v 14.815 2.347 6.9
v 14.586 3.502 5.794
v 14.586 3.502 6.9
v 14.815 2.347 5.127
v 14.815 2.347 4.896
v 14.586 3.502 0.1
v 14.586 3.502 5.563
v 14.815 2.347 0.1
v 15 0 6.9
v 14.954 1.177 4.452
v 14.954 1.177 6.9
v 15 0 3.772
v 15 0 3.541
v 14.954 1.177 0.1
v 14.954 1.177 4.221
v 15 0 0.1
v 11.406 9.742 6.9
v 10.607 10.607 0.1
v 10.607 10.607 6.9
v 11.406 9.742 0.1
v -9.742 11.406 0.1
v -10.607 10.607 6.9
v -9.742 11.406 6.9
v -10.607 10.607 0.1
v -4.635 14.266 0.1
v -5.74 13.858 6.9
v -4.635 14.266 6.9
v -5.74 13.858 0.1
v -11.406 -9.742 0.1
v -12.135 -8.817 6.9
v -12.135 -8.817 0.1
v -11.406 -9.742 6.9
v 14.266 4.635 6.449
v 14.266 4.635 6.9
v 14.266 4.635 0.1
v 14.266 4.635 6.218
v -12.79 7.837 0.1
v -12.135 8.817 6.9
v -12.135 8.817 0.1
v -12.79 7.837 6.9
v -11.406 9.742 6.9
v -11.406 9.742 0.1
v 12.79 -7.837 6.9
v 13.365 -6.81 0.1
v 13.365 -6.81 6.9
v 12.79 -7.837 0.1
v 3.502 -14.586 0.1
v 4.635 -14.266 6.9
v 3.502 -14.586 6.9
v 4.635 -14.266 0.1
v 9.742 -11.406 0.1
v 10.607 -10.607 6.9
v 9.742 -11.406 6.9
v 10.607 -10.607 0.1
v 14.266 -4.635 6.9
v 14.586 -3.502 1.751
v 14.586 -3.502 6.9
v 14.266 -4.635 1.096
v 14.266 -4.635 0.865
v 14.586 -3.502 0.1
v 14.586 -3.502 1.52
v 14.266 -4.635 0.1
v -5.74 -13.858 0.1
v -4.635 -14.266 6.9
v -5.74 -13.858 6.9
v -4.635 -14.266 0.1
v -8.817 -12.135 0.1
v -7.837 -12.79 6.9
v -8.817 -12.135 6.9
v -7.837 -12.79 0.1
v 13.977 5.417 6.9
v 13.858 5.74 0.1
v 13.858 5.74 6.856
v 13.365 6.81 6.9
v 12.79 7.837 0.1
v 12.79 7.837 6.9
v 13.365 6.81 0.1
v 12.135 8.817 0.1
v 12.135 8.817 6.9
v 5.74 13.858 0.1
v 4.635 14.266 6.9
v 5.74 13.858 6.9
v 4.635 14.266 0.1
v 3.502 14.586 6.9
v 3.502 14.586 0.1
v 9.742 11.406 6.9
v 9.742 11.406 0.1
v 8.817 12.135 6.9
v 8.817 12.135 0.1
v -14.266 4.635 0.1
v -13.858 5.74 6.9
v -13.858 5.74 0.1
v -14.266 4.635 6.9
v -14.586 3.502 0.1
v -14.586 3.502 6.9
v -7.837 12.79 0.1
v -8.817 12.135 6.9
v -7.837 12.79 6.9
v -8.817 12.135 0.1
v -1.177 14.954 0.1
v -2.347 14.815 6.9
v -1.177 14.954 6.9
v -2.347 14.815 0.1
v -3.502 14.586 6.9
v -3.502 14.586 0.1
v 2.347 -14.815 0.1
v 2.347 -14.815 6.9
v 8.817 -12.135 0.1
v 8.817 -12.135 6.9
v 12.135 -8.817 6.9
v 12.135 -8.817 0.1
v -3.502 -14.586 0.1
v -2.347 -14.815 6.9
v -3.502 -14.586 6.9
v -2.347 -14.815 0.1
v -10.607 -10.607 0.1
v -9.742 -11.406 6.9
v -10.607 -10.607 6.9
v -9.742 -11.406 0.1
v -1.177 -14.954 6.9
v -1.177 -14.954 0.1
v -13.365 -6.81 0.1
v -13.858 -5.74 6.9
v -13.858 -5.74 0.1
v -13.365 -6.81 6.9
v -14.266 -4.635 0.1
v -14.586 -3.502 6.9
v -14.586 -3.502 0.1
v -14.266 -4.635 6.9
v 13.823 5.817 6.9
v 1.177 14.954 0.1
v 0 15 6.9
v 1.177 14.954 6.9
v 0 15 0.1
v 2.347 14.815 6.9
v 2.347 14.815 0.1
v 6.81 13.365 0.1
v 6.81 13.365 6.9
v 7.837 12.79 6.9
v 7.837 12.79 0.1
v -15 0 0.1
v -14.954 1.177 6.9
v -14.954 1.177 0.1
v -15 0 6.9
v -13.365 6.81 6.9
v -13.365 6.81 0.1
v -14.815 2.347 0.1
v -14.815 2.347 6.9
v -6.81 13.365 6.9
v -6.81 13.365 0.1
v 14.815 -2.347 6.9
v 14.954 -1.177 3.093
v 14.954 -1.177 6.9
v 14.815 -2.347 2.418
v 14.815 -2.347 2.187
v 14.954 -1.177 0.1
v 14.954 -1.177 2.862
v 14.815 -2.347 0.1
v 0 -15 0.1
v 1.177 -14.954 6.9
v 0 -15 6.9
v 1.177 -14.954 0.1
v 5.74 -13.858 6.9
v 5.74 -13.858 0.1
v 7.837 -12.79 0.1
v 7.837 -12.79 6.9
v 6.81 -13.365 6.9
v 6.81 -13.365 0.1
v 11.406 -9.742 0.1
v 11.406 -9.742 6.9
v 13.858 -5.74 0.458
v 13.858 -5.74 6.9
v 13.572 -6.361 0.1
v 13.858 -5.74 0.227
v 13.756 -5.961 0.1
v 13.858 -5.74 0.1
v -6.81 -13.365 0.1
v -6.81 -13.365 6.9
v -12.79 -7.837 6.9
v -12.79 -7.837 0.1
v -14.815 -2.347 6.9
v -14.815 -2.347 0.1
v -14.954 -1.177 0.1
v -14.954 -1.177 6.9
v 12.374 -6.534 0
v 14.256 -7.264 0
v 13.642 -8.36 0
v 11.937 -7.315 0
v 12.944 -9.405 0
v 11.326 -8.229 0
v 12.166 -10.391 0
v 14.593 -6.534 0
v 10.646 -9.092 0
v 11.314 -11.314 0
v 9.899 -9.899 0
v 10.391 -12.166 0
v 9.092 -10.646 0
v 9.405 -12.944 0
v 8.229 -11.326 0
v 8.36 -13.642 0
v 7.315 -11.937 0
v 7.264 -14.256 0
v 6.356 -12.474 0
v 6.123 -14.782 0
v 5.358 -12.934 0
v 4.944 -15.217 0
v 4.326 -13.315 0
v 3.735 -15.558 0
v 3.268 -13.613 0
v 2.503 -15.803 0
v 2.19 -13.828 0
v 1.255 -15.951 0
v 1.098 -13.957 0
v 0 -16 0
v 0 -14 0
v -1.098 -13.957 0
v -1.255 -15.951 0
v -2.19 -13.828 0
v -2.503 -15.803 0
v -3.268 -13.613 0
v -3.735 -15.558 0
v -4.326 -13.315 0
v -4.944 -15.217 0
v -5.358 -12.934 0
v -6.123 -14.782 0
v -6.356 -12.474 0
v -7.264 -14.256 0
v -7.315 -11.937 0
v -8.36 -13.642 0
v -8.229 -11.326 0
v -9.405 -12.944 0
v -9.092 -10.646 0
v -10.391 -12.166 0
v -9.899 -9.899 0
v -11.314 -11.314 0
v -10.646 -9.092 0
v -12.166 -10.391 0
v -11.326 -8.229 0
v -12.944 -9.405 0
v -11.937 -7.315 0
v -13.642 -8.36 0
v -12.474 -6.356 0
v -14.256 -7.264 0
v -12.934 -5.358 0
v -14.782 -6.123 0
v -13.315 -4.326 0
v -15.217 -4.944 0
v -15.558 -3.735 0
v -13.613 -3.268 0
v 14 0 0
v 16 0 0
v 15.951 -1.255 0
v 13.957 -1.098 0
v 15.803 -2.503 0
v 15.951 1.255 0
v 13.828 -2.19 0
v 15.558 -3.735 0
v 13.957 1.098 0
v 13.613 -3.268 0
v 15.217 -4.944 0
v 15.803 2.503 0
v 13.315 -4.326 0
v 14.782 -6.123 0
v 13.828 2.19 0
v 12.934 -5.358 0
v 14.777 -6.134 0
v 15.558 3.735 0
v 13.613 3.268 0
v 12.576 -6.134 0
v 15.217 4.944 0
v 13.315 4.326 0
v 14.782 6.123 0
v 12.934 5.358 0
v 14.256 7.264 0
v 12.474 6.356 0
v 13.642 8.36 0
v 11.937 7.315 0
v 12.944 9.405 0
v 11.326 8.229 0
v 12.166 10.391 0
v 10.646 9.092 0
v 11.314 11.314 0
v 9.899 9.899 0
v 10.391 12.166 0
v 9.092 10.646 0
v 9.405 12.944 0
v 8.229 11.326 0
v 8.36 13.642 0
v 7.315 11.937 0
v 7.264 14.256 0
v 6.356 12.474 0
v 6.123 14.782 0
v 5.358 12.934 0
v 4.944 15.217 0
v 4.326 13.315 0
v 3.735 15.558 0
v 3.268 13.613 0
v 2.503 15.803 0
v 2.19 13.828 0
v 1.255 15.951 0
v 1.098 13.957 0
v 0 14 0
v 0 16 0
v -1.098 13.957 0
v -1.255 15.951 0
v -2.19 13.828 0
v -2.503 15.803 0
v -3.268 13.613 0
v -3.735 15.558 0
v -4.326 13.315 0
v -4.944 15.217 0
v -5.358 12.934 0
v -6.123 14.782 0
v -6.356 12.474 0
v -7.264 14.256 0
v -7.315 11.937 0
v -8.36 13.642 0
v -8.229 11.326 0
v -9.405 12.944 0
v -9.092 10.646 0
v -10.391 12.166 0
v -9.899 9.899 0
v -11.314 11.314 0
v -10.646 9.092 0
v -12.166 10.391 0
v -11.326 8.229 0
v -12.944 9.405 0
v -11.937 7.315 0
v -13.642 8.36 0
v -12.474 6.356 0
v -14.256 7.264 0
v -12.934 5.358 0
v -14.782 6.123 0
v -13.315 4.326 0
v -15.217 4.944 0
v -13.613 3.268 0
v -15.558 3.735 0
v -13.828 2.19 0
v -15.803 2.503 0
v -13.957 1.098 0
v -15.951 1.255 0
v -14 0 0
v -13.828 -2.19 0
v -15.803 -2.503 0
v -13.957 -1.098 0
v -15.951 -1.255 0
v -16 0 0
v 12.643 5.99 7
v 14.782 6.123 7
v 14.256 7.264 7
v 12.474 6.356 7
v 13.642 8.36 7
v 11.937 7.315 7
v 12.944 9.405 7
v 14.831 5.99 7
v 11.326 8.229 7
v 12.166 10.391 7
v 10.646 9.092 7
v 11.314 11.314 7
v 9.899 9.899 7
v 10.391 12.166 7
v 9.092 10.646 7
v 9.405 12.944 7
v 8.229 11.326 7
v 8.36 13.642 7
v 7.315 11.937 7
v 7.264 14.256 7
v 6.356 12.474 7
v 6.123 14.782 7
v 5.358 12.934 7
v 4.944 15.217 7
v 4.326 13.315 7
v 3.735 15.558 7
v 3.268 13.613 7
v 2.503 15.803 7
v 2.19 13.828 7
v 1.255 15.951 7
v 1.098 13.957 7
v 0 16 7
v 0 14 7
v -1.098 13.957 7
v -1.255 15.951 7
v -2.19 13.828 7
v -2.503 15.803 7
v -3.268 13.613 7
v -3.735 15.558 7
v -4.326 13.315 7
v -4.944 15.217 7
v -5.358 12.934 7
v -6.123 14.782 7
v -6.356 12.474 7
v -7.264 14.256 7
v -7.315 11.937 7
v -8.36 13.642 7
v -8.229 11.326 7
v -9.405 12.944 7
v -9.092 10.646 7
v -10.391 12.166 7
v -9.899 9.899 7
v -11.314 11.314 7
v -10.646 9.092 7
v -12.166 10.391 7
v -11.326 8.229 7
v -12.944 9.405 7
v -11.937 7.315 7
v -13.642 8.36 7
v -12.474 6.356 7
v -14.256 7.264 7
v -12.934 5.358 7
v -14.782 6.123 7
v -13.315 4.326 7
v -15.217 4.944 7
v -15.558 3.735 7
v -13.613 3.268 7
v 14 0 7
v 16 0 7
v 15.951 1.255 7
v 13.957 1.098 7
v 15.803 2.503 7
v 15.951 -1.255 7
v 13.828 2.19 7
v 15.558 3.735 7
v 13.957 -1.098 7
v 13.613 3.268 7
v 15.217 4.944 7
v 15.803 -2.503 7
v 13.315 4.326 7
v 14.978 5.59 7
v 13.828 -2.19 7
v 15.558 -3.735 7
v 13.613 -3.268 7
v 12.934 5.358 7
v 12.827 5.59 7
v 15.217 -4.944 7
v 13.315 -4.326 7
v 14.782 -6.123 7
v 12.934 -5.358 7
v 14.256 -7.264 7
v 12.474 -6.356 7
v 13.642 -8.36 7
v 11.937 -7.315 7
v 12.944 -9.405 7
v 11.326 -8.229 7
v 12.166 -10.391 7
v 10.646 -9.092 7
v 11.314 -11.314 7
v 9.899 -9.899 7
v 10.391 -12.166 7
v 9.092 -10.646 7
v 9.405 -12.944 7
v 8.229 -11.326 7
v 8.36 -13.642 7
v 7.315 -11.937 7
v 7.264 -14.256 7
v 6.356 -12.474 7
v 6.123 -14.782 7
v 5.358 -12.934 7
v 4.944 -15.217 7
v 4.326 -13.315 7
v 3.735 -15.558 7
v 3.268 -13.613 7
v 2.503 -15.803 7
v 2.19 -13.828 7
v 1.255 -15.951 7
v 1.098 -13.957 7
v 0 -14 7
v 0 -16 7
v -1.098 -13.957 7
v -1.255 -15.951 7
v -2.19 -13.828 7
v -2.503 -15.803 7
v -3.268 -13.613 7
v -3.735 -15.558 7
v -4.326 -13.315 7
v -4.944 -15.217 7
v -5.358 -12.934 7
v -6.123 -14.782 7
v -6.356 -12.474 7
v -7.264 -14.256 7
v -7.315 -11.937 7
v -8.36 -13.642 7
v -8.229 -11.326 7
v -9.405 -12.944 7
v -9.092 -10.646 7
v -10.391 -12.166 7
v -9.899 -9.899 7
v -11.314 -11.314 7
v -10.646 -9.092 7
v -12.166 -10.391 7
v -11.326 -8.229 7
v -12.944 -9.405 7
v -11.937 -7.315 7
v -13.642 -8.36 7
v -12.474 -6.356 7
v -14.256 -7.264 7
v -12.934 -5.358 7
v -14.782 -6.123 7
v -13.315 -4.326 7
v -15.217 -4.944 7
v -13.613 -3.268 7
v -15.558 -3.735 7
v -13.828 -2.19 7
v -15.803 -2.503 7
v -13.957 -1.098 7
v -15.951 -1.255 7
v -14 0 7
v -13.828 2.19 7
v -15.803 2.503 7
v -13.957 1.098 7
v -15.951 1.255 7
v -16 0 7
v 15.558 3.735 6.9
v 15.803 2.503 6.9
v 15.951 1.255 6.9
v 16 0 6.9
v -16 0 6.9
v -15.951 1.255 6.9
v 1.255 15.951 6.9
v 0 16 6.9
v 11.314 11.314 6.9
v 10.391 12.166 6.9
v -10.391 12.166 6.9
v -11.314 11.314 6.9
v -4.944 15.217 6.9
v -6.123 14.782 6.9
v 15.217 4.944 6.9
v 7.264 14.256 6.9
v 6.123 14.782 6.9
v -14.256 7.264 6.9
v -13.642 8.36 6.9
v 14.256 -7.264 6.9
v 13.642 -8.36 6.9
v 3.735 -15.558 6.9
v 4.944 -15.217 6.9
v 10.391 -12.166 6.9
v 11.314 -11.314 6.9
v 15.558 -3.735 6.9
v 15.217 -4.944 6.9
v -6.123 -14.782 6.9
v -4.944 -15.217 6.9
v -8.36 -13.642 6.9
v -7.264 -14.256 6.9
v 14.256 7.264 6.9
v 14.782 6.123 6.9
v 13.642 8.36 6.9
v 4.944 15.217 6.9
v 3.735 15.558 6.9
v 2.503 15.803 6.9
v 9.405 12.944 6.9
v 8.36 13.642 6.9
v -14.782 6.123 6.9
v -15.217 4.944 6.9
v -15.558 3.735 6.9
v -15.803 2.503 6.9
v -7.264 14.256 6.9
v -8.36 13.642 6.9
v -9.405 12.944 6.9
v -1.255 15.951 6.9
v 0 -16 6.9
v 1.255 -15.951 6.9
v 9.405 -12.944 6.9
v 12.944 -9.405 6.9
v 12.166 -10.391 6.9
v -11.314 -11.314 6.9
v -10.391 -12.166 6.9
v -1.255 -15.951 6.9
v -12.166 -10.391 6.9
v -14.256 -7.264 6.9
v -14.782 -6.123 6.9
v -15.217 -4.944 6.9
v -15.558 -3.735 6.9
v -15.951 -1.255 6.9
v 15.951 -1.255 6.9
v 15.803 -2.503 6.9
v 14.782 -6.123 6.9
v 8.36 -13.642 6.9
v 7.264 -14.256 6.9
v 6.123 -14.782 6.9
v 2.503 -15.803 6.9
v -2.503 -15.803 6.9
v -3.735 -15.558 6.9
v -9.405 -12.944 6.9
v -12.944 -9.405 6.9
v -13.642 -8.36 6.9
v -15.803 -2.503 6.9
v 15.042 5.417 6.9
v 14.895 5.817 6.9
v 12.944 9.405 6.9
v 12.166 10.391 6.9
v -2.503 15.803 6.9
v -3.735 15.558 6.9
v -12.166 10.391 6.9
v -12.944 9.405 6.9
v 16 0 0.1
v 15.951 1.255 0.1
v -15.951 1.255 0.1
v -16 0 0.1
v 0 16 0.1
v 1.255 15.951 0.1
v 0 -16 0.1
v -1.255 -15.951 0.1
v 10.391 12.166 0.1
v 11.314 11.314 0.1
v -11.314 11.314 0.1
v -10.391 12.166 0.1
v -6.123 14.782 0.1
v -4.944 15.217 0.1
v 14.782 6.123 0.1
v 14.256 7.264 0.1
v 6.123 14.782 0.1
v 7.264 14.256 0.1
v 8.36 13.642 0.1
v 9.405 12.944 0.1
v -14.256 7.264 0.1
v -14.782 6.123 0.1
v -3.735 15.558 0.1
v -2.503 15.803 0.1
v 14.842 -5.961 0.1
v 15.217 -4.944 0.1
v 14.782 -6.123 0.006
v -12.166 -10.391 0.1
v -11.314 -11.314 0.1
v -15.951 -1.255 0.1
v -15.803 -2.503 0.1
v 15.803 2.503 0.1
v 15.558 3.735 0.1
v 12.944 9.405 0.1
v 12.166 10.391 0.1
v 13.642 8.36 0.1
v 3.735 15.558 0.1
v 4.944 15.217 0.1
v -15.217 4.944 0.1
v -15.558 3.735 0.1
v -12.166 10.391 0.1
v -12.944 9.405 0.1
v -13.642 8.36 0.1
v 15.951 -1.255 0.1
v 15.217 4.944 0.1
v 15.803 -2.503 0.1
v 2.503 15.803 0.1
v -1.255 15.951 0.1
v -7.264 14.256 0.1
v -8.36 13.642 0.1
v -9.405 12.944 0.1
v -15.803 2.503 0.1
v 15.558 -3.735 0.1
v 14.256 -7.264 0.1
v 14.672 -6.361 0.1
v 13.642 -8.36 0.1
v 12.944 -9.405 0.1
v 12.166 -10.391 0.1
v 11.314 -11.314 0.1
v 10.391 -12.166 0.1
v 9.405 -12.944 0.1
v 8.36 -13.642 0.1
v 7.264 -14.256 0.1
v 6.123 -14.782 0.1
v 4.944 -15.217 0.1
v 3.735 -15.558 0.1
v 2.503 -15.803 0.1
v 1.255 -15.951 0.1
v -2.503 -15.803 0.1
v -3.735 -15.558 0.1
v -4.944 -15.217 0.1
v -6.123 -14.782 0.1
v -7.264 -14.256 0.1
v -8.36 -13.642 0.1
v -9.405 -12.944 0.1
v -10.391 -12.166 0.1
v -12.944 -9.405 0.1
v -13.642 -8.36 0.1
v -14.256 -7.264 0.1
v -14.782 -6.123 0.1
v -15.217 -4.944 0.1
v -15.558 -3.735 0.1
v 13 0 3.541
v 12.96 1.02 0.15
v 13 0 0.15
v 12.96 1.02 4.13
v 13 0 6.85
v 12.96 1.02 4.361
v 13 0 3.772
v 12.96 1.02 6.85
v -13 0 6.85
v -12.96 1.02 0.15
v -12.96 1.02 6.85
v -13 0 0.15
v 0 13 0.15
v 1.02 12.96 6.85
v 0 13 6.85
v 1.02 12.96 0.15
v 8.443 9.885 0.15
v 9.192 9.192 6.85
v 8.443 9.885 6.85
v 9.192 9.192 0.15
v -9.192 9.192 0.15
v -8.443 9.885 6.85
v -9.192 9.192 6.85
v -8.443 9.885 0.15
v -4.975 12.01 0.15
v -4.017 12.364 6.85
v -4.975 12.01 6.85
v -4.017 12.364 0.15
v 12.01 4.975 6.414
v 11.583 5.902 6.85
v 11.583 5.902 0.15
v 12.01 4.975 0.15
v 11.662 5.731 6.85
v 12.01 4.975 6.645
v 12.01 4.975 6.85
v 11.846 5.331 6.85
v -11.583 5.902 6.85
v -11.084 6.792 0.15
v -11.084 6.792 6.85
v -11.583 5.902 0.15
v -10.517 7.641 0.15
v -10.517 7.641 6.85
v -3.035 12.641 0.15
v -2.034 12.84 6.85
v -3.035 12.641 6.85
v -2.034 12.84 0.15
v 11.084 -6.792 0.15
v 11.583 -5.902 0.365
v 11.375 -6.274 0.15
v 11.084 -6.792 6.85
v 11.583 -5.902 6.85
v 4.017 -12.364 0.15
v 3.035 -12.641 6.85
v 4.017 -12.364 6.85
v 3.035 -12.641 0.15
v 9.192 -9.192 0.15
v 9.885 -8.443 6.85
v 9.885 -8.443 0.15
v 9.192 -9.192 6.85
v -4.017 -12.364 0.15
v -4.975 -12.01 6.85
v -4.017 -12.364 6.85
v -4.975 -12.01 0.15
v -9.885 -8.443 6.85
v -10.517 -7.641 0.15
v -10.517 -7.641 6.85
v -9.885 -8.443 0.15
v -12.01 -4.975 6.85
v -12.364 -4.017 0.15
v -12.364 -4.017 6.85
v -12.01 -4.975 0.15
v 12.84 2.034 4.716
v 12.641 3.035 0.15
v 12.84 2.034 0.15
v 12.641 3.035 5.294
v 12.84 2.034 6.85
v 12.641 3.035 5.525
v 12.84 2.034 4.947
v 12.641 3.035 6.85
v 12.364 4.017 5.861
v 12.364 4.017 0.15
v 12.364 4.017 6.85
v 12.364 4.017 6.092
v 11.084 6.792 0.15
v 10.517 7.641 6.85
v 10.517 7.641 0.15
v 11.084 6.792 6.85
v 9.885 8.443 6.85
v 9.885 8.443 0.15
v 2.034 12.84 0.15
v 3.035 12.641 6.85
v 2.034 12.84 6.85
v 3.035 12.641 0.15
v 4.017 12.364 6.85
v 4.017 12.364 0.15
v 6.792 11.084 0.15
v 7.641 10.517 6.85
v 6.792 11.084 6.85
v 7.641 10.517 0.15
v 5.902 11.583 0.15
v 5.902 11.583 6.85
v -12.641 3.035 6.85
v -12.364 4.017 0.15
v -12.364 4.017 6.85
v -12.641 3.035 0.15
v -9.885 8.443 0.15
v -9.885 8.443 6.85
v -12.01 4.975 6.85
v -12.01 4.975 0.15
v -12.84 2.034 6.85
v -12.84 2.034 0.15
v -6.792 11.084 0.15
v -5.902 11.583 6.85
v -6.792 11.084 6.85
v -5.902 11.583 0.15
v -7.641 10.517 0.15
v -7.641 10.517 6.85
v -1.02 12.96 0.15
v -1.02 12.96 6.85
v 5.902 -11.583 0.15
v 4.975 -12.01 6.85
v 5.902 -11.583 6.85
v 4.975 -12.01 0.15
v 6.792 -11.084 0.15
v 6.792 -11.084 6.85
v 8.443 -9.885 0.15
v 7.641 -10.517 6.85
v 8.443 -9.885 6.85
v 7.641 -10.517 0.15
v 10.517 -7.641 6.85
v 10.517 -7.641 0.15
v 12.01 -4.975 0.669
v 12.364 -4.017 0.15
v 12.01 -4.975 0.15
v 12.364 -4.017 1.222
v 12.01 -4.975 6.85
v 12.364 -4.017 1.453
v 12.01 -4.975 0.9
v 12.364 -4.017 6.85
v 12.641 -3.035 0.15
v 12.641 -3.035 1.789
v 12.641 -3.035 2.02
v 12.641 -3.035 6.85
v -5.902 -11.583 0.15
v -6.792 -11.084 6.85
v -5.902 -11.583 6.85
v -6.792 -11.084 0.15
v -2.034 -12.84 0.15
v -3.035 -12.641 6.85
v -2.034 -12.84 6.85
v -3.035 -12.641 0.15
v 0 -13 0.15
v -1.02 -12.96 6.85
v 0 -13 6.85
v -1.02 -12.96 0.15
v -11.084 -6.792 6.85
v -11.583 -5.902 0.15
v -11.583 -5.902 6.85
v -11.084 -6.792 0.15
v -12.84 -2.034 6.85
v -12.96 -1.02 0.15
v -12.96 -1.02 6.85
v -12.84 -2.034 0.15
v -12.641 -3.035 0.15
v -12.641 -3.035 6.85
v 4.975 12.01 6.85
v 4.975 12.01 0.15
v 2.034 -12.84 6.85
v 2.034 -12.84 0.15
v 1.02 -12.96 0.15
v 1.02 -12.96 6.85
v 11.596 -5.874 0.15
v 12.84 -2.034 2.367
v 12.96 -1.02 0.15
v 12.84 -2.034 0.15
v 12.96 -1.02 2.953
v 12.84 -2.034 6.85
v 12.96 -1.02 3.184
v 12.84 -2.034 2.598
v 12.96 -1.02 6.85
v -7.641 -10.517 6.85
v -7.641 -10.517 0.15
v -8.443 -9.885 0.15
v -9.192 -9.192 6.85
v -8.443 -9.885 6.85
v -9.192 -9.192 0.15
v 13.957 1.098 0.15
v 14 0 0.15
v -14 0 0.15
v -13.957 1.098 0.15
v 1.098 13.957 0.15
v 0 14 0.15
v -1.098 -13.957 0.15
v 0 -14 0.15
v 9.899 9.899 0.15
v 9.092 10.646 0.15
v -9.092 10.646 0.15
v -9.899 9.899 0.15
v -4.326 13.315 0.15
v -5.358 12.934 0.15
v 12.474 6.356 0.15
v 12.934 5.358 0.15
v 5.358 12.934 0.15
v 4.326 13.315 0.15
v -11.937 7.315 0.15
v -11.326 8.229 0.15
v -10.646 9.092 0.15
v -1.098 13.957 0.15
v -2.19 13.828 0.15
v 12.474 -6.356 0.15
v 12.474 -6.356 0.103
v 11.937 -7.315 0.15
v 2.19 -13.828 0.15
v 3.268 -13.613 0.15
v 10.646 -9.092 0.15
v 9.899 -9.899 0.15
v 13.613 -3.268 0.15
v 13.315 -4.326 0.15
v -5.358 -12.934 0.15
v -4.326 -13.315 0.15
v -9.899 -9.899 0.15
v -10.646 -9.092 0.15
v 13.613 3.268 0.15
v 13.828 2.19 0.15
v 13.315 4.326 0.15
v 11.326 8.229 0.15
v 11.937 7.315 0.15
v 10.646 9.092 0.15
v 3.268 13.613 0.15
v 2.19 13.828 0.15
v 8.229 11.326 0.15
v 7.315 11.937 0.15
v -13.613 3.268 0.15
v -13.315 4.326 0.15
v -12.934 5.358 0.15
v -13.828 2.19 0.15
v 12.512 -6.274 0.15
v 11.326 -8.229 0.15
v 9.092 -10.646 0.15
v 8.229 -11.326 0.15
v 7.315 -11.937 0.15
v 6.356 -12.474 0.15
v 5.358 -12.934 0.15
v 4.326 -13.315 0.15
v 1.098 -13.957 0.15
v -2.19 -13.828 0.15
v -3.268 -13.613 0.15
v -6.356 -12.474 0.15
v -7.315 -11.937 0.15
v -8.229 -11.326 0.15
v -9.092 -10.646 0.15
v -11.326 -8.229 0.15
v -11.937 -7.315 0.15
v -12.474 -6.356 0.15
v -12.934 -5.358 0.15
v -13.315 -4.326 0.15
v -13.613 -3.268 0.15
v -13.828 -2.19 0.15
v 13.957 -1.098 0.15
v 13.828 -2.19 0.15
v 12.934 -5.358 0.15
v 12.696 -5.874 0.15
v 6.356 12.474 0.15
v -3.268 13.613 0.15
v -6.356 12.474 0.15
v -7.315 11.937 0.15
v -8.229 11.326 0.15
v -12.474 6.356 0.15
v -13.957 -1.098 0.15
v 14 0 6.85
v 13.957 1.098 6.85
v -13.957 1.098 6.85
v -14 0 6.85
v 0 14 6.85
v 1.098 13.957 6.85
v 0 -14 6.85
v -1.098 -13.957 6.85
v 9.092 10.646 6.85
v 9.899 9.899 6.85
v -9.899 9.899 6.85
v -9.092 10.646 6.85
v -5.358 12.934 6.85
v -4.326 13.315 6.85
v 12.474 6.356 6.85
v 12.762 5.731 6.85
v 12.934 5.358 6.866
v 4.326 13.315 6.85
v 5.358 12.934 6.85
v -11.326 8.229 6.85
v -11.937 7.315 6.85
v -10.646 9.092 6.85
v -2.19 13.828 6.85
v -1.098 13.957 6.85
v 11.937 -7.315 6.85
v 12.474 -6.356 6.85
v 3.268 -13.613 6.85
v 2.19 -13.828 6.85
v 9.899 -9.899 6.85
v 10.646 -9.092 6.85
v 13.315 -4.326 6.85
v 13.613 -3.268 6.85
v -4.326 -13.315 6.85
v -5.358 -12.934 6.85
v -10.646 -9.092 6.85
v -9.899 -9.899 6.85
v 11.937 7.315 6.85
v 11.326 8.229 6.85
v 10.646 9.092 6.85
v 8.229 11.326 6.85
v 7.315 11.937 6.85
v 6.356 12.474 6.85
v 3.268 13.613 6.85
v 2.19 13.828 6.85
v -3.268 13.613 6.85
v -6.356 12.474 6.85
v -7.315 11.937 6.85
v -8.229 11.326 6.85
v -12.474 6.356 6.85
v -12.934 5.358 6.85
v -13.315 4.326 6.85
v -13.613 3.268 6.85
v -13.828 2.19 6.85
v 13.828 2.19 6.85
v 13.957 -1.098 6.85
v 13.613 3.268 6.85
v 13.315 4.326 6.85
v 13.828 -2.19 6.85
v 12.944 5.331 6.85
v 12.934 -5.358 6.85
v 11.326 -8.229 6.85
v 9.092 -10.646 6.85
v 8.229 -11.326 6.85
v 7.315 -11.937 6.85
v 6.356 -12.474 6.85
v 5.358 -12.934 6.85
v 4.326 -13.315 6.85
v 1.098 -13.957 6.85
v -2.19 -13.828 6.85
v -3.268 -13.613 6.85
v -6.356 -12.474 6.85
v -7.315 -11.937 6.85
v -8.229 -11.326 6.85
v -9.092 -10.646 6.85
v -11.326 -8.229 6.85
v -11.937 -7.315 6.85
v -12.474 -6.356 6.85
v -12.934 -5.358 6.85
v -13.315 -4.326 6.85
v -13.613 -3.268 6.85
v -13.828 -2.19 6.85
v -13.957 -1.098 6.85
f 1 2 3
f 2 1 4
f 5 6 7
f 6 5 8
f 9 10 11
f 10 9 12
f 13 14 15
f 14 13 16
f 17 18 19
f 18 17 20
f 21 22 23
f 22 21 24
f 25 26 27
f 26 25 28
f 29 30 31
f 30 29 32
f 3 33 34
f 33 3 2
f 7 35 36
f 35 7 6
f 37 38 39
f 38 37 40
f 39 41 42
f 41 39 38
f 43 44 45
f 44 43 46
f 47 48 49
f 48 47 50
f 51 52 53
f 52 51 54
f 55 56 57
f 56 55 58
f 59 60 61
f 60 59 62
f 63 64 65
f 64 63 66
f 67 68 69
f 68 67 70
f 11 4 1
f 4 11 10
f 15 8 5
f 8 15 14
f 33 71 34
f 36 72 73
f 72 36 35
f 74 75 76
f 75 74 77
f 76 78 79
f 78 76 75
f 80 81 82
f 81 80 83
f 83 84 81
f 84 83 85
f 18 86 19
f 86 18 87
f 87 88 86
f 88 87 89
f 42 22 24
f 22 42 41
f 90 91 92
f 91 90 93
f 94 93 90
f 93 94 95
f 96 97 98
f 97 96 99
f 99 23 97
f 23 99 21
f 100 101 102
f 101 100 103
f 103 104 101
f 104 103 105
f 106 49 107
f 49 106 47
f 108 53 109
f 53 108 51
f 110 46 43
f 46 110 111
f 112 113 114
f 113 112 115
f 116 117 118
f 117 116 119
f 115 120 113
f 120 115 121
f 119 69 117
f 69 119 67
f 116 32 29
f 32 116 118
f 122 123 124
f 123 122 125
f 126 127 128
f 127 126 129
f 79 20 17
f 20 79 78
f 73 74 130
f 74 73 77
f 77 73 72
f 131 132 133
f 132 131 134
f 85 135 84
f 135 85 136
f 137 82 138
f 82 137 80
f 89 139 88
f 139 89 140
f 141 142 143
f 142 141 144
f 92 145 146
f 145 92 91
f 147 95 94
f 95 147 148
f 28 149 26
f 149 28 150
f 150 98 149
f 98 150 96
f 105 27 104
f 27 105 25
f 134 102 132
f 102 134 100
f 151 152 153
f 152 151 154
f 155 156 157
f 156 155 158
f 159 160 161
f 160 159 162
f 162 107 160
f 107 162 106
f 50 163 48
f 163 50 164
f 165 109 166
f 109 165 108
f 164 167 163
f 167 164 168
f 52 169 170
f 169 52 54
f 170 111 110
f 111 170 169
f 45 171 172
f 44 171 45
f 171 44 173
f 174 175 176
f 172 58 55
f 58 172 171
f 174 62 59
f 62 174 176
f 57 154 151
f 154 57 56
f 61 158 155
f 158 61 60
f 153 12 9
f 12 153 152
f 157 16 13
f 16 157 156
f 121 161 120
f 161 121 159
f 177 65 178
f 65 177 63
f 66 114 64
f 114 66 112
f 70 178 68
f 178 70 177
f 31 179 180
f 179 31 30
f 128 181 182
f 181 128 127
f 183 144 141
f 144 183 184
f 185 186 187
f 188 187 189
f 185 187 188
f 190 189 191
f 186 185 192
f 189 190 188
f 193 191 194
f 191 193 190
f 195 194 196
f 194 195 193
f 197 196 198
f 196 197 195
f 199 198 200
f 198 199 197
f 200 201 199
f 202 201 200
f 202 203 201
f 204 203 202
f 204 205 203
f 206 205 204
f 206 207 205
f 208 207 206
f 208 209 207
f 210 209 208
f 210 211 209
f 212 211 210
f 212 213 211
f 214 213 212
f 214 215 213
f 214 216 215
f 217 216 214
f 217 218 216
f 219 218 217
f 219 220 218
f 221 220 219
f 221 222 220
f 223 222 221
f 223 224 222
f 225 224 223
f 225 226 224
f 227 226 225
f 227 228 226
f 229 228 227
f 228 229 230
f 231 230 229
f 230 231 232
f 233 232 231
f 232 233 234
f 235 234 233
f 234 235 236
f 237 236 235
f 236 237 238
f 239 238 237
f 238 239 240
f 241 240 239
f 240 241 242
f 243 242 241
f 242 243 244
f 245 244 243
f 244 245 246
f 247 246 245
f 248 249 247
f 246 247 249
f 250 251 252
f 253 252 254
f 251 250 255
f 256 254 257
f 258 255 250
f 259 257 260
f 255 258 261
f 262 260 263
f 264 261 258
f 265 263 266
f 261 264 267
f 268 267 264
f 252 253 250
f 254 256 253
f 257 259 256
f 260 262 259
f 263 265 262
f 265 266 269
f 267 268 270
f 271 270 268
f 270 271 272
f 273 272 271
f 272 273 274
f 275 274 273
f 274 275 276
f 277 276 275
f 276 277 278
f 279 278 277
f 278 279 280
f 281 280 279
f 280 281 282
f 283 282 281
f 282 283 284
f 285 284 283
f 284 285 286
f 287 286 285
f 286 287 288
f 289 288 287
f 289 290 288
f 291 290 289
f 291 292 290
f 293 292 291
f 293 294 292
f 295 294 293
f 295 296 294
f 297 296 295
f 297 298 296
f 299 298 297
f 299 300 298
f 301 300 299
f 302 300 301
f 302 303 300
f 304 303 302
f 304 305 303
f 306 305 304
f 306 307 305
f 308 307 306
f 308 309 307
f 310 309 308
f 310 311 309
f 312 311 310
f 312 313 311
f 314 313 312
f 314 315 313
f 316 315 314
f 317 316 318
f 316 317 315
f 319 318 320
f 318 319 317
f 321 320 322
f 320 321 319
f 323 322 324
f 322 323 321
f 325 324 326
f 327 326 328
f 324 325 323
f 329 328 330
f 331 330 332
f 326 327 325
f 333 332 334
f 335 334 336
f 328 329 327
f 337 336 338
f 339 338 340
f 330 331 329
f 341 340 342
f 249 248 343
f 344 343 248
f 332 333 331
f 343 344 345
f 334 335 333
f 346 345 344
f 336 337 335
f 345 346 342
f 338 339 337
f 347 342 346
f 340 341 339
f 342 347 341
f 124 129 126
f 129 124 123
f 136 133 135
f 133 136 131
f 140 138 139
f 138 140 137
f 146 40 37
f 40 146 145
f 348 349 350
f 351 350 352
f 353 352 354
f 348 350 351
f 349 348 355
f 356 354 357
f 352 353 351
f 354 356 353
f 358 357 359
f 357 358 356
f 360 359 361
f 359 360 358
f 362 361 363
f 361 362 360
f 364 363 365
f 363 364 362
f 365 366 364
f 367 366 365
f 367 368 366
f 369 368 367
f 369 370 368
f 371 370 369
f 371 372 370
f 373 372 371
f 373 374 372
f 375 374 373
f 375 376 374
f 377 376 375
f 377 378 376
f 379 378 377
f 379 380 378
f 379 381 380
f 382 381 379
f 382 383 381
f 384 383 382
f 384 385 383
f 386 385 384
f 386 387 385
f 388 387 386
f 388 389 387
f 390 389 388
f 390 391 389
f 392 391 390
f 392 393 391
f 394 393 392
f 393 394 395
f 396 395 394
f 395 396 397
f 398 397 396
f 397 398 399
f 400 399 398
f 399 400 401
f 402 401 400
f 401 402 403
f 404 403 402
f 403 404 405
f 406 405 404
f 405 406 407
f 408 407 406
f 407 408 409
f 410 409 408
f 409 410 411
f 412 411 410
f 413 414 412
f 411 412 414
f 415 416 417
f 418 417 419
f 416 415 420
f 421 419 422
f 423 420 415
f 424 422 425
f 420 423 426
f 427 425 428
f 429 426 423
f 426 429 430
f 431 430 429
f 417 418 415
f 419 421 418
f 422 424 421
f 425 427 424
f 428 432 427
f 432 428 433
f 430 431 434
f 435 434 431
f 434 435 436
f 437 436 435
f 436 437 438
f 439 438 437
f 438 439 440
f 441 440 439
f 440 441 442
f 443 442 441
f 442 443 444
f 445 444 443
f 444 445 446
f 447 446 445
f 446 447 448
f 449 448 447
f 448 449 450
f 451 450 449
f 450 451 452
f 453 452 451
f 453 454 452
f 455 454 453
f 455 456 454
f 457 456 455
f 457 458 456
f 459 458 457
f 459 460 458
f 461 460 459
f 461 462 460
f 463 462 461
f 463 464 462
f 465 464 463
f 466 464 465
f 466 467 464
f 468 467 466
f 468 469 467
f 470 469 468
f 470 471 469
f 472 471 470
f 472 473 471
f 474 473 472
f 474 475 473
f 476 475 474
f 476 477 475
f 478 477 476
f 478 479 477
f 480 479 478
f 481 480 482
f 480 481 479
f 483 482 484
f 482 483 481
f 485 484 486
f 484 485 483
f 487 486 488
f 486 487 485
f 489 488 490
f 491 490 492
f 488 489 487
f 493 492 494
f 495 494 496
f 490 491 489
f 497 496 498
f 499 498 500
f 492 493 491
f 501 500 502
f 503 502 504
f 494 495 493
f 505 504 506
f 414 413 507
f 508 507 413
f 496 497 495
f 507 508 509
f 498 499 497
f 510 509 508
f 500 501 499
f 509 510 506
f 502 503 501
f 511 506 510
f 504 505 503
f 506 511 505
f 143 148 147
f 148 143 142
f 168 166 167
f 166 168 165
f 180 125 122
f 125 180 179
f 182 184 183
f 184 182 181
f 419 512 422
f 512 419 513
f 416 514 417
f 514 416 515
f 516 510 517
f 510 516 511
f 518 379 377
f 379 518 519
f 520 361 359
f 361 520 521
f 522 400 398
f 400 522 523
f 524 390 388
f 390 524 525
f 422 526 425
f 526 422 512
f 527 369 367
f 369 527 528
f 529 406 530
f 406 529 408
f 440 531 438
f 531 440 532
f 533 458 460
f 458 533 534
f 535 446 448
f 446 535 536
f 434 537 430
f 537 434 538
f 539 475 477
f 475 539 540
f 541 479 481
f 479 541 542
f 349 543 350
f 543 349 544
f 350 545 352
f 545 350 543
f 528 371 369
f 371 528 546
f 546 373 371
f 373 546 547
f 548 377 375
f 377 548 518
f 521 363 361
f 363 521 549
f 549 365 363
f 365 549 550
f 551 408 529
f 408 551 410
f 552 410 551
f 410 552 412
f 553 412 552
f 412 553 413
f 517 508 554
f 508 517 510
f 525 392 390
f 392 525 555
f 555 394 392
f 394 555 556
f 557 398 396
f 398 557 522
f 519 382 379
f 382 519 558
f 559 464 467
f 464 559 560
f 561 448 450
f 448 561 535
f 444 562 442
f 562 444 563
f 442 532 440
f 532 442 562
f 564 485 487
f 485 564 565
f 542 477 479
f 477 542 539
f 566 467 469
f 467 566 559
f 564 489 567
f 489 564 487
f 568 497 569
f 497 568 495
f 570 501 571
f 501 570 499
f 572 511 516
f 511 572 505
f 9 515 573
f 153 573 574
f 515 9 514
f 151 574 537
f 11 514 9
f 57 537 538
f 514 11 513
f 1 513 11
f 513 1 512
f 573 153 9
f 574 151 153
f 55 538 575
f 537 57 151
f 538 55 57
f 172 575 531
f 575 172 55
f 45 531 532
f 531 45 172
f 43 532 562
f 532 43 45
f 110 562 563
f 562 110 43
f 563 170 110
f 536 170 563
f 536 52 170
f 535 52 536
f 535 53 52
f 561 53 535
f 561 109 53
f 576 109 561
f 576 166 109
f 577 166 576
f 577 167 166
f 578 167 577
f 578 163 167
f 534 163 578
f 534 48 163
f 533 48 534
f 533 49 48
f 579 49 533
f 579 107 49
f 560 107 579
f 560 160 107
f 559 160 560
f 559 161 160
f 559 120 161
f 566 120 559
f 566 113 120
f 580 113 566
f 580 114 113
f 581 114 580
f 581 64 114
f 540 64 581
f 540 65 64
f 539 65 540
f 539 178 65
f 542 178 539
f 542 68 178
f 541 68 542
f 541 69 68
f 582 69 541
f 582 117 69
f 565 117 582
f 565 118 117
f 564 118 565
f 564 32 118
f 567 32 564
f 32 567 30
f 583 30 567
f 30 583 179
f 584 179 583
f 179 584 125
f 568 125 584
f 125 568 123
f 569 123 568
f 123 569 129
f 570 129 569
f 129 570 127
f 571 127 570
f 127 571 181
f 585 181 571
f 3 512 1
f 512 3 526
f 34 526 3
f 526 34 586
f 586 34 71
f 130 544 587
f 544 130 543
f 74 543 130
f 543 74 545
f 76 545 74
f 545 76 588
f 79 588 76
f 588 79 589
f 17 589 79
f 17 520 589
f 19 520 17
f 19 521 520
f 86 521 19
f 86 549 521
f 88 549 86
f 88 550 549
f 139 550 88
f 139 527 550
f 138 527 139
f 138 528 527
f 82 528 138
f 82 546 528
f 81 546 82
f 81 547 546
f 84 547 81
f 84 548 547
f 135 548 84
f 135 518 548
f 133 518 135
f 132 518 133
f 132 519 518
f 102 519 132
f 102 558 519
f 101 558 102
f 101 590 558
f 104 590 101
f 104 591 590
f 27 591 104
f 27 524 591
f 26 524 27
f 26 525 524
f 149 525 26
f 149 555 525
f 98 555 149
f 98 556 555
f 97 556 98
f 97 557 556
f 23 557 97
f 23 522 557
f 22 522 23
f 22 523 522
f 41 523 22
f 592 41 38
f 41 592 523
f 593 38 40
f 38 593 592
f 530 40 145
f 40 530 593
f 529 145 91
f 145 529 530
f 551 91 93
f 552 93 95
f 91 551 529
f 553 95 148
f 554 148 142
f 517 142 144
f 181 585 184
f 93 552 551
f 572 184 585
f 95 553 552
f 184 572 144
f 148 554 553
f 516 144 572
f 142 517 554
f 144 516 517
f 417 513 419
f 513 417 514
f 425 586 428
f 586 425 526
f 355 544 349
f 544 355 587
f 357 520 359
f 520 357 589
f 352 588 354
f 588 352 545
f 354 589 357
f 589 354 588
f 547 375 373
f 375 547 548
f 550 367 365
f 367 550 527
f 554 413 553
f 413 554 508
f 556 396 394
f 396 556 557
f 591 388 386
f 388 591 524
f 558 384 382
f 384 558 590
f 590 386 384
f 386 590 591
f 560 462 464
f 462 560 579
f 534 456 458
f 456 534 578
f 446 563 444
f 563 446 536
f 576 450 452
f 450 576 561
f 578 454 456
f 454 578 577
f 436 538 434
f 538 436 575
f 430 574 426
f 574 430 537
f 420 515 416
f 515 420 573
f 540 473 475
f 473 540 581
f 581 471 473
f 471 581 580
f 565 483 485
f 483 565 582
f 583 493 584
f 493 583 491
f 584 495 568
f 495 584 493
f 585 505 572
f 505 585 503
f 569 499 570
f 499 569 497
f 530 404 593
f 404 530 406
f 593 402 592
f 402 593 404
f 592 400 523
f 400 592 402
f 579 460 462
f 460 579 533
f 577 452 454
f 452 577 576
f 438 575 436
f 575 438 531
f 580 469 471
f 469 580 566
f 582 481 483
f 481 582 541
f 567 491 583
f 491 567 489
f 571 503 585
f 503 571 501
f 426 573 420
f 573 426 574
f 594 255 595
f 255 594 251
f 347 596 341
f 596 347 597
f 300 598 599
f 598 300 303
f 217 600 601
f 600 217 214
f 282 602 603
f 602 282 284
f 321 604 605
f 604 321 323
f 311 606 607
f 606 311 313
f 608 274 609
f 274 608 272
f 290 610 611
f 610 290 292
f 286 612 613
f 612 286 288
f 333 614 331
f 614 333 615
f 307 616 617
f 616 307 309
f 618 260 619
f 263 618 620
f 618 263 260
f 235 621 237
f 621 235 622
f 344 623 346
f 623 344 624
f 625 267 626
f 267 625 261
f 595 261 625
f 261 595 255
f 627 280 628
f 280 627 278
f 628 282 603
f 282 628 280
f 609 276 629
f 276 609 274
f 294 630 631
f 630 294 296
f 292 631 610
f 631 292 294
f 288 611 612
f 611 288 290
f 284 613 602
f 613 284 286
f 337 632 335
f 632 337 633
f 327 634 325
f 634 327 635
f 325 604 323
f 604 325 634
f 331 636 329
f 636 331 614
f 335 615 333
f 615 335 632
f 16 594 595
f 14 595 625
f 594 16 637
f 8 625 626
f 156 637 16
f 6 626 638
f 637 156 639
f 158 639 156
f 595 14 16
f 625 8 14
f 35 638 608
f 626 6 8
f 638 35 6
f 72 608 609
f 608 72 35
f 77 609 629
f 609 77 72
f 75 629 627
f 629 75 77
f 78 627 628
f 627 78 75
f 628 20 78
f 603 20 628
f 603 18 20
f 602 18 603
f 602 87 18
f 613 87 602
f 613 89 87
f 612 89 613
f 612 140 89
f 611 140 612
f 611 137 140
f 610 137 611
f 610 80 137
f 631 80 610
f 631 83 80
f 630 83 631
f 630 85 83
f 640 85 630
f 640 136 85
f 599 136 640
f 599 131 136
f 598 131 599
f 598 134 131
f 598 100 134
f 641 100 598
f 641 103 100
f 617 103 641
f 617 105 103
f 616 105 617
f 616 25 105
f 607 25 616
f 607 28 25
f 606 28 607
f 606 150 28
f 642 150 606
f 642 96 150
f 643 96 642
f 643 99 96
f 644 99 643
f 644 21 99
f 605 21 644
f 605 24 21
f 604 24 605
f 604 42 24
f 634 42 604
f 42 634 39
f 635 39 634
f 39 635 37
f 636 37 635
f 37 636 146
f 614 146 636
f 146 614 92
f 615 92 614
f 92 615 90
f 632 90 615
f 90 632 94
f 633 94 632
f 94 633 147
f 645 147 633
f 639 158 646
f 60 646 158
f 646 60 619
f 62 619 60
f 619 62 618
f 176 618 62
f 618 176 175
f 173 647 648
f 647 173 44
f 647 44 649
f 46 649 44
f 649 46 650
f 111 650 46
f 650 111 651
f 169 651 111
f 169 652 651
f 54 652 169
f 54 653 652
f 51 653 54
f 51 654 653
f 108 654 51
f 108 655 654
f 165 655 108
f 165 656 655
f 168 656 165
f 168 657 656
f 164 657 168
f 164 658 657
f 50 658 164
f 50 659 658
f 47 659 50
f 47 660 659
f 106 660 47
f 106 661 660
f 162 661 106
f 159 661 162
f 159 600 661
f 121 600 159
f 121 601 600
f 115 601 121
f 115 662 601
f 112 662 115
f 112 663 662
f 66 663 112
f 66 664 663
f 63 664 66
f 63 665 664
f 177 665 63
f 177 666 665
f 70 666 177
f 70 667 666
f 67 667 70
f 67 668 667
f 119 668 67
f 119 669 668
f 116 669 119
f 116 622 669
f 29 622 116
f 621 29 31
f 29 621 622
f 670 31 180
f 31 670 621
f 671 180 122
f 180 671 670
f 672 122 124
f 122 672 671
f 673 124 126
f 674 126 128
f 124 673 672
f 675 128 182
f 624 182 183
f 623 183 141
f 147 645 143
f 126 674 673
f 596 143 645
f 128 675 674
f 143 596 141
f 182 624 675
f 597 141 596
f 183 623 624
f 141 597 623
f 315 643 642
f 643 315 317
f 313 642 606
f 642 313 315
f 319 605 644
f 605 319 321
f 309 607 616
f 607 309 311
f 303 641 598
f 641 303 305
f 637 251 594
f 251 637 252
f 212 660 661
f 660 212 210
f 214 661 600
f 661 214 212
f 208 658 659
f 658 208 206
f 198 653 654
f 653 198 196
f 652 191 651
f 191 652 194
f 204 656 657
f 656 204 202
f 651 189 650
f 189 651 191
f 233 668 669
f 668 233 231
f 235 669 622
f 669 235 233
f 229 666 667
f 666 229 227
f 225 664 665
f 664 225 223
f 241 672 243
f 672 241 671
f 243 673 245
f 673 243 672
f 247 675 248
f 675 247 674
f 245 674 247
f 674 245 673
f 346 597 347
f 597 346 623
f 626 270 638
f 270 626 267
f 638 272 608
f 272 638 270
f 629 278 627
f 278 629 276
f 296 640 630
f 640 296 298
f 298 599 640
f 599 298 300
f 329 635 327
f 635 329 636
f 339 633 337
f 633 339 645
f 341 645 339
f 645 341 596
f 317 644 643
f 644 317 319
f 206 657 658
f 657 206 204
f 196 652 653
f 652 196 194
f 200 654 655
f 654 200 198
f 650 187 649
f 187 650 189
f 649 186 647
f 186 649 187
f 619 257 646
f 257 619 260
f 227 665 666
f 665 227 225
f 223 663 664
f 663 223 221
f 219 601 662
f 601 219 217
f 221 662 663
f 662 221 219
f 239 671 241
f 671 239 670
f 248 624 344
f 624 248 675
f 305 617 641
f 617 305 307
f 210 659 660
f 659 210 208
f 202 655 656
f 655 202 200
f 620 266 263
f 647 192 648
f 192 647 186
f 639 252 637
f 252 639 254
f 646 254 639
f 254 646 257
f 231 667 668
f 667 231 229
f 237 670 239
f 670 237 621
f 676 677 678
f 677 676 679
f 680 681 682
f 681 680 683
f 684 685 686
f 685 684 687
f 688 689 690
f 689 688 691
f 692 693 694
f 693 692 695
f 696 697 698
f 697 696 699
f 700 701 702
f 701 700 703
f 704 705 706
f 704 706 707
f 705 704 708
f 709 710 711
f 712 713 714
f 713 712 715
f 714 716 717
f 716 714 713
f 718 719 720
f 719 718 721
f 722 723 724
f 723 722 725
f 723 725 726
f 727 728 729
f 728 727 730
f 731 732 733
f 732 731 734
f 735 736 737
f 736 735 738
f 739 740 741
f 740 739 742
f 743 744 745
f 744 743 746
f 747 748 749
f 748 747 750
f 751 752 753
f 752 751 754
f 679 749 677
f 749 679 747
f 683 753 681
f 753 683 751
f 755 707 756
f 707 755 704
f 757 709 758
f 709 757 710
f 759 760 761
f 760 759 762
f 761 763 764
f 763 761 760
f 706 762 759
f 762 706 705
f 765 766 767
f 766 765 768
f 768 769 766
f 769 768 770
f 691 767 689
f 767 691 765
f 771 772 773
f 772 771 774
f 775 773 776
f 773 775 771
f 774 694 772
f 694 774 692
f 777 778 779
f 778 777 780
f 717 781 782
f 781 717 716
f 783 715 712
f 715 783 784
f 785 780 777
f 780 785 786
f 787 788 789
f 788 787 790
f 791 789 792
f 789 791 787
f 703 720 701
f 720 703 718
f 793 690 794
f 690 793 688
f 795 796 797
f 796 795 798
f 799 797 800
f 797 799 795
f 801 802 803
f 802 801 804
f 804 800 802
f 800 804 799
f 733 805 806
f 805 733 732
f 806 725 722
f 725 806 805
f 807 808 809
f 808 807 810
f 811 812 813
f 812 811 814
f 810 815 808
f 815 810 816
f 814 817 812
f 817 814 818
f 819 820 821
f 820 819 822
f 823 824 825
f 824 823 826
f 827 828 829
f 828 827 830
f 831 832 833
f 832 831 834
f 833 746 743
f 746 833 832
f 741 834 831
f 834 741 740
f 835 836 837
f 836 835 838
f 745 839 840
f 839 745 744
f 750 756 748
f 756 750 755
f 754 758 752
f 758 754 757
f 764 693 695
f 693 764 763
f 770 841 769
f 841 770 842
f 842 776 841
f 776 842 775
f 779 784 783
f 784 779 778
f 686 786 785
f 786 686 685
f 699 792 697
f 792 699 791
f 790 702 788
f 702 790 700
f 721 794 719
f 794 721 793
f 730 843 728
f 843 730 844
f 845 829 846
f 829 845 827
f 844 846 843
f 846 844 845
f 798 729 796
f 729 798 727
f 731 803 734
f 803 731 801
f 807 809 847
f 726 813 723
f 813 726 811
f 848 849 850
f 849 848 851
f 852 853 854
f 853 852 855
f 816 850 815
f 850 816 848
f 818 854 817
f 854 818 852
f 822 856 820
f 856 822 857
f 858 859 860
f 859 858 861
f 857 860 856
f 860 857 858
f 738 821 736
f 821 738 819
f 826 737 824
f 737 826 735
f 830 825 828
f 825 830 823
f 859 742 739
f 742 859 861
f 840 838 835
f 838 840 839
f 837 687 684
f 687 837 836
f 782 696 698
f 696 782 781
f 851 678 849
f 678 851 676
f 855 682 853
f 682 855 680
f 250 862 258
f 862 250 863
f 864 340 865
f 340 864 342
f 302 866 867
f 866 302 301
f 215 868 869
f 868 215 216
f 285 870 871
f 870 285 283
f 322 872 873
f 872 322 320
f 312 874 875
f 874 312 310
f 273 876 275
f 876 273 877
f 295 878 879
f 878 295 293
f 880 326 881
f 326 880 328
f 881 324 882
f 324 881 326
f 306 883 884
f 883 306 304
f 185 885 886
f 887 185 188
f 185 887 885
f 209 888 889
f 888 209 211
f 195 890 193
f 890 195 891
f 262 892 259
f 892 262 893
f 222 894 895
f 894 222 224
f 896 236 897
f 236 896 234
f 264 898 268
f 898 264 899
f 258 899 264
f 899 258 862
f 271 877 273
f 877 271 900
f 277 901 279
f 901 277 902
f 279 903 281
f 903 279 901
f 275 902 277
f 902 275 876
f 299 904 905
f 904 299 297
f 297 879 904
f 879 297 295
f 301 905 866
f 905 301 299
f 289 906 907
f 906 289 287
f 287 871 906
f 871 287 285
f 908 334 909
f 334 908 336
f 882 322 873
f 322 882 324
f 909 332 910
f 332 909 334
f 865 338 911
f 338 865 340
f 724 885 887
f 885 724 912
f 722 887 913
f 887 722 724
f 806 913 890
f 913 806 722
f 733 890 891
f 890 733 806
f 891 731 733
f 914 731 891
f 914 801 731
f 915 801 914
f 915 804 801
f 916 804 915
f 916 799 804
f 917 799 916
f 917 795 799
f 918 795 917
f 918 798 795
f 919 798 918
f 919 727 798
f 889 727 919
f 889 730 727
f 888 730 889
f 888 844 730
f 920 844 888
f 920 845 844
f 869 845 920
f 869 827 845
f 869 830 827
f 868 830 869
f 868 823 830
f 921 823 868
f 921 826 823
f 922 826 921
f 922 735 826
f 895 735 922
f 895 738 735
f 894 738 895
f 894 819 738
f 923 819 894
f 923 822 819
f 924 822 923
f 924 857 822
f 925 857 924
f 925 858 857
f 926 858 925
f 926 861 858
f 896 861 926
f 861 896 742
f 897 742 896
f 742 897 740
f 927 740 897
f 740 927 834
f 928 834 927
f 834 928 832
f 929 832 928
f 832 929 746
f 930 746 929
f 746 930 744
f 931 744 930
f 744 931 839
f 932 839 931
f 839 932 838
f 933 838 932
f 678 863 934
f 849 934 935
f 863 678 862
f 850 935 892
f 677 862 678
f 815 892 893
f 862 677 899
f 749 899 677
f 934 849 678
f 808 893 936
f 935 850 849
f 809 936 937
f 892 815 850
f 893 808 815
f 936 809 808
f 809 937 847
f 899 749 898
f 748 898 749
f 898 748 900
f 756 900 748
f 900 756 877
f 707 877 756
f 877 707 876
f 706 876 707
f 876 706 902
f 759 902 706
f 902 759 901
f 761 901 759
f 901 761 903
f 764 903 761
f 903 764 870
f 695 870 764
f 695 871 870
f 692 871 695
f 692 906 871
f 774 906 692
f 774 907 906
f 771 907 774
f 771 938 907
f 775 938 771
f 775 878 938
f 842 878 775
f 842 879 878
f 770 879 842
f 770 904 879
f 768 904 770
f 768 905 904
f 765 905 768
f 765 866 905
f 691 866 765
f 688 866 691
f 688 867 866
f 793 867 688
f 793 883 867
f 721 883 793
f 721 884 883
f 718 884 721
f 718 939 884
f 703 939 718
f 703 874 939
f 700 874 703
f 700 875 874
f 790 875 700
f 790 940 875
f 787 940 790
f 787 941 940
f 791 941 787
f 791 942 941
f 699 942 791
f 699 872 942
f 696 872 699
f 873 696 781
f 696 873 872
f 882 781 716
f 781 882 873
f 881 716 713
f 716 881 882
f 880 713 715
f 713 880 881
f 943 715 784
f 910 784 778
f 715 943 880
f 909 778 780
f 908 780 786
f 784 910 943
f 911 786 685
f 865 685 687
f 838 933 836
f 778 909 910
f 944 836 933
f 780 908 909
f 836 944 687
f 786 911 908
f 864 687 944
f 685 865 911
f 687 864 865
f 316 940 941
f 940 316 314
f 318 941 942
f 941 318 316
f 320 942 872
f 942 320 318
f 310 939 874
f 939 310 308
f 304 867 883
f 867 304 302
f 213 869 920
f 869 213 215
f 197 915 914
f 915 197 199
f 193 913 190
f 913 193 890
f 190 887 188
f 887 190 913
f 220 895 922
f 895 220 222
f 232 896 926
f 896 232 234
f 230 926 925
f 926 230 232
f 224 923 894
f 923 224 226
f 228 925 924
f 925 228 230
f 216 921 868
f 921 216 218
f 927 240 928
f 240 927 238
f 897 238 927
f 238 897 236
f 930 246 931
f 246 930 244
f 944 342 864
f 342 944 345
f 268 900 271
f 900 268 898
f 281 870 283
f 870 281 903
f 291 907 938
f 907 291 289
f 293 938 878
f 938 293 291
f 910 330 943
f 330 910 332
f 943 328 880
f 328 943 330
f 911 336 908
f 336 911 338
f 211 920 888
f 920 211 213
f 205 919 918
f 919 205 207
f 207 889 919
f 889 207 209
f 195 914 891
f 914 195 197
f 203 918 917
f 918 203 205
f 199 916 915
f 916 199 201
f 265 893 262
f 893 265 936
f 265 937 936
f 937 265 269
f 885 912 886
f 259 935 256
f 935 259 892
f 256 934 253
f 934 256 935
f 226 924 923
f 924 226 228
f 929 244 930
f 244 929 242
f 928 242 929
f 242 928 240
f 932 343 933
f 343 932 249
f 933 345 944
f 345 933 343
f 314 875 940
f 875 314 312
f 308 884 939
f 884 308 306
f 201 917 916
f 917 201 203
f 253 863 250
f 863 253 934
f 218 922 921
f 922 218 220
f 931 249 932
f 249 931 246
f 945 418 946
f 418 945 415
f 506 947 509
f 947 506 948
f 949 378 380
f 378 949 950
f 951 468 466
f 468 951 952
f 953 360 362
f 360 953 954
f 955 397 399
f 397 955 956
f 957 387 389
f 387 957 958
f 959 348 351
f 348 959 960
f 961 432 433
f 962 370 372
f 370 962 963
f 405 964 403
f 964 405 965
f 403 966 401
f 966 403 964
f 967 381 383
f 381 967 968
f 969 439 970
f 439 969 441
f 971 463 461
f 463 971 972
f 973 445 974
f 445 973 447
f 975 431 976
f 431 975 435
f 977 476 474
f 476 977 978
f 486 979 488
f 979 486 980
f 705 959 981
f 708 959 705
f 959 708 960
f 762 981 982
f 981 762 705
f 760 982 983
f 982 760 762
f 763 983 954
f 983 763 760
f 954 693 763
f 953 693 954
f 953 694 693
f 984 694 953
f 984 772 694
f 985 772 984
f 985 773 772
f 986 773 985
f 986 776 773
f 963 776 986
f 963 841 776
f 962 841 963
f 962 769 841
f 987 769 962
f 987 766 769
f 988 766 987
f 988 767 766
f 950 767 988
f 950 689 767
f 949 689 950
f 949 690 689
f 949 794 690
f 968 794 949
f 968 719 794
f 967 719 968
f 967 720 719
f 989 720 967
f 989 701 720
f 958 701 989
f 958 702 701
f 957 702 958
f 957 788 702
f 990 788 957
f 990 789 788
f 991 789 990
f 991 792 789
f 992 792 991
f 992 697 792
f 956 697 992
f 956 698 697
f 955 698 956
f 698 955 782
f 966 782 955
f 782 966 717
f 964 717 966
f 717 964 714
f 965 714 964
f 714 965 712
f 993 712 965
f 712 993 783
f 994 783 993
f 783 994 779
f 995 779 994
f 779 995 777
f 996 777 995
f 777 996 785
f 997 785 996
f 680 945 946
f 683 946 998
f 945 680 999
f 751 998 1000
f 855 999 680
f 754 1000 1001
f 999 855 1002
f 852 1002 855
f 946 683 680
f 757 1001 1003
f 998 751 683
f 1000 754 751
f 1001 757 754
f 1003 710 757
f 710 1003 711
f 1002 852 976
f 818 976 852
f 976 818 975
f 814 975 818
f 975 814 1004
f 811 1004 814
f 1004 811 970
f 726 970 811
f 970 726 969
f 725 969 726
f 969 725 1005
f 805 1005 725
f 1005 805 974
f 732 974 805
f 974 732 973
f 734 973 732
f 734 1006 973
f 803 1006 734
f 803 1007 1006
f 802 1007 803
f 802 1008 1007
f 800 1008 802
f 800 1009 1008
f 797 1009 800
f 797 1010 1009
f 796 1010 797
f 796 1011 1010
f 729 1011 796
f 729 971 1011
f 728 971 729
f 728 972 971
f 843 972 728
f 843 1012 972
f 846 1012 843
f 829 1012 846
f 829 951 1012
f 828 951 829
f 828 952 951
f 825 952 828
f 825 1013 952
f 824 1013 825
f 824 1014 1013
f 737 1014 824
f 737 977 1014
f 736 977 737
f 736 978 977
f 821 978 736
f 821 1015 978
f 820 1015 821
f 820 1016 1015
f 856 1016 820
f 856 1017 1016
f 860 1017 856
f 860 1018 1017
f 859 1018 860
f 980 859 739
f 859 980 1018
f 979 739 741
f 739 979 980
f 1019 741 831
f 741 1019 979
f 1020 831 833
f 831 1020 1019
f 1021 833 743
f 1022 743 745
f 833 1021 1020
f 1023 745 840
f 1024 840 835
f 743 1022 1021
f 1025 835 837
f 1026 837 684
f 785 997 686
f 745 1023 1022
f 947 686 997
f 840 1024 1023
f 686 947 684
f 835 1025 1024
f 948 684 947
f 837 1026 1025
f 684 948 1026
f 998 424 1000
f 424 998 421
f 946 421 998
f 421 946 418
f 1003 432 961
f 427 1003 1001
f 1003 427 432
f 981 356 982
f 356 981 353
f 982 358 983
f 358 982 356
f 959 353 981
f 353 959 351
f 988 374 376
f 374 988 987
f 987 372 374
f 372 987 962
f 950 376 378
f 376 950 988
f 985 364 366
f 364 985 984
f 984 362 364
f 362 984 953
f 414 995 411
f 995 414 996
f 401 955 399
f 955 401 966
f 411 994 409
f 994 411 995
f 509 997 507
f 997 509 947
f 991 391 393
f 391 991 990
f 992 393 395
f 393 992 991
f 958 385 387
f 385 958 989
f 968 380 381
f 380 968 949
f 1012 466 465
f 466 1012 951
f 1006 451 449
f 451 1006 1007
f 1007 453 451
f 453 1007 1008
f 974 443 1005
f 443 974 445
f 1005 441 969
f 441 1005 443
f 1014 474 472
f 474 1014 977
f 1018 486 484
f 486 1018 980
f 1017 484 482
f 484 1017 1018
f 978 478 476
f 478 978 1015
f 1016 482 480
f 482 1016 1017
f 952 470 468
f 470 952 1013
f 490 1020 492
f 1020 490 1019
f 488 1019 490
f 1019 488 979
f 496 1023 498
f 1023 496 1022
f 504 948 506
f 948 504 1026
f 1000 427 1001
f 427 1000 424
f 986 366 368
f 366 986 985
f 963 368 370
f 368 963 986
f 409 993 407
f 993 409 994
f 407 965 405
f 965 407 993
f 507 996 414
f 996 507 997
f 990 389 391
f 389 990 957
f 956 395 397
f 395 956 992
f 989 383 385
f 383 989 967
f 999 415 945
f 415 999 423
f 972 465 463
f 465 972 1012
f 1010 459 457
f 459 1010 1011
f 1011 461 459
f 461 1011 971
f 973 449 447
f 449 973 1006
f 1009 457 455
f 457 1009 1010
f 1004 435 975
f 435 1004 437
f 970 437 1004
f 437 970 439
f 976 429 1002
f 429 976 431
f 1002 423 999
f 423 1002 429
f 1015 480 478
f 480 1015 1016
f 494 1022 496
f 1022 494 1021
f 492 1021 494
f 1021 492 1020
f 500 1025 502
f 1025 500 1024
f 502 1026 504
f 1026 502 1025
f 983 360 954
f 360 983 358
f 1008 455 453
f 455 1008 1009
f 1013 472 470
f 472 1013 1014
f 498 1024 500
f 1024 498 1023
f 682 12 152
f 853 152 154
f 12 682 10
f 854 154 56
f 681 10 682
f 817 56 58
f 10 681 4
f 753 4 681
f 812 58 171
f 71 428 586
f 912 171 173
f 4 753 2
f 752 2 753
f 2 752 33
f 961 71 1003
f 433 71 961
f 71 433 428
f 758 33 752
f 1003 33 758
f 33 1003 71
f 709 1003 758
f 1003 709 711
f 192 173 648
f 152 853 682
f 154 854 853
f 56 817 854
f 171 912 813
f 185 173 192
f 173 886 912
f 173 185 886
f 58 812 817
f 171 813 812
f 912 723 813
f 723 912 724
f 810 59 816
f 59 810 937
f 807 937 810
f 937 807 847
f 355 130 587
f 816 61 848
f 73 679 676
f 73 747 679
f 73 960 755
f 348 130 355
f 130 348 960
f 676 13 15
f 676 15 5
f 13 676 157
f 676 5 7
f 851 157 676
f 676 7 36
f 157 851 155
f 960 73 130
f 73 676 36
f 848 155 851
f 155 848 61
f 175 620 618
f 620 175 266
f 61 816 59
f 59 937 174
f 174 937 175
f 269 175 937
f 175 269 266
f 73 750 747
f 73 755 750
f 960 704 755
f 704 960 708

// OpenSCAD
    
$fn=80;
difference(){
    union(){
        cylinder(7,15,15);
        translate([0,0,6.9])
            cylinder(.1,16,16);
        cylinder(.1,16,16);
    };
    cylinder(7,13,13);
    translate([0,0,-1])
        cylinder(1.15,14,14);
    translate([0,0,6.85])
        cylinder (1.11,14,14);
    translate([5,-7,-.5])
        rotate([30,0,0])
            cube([20,16,.2]);
};
